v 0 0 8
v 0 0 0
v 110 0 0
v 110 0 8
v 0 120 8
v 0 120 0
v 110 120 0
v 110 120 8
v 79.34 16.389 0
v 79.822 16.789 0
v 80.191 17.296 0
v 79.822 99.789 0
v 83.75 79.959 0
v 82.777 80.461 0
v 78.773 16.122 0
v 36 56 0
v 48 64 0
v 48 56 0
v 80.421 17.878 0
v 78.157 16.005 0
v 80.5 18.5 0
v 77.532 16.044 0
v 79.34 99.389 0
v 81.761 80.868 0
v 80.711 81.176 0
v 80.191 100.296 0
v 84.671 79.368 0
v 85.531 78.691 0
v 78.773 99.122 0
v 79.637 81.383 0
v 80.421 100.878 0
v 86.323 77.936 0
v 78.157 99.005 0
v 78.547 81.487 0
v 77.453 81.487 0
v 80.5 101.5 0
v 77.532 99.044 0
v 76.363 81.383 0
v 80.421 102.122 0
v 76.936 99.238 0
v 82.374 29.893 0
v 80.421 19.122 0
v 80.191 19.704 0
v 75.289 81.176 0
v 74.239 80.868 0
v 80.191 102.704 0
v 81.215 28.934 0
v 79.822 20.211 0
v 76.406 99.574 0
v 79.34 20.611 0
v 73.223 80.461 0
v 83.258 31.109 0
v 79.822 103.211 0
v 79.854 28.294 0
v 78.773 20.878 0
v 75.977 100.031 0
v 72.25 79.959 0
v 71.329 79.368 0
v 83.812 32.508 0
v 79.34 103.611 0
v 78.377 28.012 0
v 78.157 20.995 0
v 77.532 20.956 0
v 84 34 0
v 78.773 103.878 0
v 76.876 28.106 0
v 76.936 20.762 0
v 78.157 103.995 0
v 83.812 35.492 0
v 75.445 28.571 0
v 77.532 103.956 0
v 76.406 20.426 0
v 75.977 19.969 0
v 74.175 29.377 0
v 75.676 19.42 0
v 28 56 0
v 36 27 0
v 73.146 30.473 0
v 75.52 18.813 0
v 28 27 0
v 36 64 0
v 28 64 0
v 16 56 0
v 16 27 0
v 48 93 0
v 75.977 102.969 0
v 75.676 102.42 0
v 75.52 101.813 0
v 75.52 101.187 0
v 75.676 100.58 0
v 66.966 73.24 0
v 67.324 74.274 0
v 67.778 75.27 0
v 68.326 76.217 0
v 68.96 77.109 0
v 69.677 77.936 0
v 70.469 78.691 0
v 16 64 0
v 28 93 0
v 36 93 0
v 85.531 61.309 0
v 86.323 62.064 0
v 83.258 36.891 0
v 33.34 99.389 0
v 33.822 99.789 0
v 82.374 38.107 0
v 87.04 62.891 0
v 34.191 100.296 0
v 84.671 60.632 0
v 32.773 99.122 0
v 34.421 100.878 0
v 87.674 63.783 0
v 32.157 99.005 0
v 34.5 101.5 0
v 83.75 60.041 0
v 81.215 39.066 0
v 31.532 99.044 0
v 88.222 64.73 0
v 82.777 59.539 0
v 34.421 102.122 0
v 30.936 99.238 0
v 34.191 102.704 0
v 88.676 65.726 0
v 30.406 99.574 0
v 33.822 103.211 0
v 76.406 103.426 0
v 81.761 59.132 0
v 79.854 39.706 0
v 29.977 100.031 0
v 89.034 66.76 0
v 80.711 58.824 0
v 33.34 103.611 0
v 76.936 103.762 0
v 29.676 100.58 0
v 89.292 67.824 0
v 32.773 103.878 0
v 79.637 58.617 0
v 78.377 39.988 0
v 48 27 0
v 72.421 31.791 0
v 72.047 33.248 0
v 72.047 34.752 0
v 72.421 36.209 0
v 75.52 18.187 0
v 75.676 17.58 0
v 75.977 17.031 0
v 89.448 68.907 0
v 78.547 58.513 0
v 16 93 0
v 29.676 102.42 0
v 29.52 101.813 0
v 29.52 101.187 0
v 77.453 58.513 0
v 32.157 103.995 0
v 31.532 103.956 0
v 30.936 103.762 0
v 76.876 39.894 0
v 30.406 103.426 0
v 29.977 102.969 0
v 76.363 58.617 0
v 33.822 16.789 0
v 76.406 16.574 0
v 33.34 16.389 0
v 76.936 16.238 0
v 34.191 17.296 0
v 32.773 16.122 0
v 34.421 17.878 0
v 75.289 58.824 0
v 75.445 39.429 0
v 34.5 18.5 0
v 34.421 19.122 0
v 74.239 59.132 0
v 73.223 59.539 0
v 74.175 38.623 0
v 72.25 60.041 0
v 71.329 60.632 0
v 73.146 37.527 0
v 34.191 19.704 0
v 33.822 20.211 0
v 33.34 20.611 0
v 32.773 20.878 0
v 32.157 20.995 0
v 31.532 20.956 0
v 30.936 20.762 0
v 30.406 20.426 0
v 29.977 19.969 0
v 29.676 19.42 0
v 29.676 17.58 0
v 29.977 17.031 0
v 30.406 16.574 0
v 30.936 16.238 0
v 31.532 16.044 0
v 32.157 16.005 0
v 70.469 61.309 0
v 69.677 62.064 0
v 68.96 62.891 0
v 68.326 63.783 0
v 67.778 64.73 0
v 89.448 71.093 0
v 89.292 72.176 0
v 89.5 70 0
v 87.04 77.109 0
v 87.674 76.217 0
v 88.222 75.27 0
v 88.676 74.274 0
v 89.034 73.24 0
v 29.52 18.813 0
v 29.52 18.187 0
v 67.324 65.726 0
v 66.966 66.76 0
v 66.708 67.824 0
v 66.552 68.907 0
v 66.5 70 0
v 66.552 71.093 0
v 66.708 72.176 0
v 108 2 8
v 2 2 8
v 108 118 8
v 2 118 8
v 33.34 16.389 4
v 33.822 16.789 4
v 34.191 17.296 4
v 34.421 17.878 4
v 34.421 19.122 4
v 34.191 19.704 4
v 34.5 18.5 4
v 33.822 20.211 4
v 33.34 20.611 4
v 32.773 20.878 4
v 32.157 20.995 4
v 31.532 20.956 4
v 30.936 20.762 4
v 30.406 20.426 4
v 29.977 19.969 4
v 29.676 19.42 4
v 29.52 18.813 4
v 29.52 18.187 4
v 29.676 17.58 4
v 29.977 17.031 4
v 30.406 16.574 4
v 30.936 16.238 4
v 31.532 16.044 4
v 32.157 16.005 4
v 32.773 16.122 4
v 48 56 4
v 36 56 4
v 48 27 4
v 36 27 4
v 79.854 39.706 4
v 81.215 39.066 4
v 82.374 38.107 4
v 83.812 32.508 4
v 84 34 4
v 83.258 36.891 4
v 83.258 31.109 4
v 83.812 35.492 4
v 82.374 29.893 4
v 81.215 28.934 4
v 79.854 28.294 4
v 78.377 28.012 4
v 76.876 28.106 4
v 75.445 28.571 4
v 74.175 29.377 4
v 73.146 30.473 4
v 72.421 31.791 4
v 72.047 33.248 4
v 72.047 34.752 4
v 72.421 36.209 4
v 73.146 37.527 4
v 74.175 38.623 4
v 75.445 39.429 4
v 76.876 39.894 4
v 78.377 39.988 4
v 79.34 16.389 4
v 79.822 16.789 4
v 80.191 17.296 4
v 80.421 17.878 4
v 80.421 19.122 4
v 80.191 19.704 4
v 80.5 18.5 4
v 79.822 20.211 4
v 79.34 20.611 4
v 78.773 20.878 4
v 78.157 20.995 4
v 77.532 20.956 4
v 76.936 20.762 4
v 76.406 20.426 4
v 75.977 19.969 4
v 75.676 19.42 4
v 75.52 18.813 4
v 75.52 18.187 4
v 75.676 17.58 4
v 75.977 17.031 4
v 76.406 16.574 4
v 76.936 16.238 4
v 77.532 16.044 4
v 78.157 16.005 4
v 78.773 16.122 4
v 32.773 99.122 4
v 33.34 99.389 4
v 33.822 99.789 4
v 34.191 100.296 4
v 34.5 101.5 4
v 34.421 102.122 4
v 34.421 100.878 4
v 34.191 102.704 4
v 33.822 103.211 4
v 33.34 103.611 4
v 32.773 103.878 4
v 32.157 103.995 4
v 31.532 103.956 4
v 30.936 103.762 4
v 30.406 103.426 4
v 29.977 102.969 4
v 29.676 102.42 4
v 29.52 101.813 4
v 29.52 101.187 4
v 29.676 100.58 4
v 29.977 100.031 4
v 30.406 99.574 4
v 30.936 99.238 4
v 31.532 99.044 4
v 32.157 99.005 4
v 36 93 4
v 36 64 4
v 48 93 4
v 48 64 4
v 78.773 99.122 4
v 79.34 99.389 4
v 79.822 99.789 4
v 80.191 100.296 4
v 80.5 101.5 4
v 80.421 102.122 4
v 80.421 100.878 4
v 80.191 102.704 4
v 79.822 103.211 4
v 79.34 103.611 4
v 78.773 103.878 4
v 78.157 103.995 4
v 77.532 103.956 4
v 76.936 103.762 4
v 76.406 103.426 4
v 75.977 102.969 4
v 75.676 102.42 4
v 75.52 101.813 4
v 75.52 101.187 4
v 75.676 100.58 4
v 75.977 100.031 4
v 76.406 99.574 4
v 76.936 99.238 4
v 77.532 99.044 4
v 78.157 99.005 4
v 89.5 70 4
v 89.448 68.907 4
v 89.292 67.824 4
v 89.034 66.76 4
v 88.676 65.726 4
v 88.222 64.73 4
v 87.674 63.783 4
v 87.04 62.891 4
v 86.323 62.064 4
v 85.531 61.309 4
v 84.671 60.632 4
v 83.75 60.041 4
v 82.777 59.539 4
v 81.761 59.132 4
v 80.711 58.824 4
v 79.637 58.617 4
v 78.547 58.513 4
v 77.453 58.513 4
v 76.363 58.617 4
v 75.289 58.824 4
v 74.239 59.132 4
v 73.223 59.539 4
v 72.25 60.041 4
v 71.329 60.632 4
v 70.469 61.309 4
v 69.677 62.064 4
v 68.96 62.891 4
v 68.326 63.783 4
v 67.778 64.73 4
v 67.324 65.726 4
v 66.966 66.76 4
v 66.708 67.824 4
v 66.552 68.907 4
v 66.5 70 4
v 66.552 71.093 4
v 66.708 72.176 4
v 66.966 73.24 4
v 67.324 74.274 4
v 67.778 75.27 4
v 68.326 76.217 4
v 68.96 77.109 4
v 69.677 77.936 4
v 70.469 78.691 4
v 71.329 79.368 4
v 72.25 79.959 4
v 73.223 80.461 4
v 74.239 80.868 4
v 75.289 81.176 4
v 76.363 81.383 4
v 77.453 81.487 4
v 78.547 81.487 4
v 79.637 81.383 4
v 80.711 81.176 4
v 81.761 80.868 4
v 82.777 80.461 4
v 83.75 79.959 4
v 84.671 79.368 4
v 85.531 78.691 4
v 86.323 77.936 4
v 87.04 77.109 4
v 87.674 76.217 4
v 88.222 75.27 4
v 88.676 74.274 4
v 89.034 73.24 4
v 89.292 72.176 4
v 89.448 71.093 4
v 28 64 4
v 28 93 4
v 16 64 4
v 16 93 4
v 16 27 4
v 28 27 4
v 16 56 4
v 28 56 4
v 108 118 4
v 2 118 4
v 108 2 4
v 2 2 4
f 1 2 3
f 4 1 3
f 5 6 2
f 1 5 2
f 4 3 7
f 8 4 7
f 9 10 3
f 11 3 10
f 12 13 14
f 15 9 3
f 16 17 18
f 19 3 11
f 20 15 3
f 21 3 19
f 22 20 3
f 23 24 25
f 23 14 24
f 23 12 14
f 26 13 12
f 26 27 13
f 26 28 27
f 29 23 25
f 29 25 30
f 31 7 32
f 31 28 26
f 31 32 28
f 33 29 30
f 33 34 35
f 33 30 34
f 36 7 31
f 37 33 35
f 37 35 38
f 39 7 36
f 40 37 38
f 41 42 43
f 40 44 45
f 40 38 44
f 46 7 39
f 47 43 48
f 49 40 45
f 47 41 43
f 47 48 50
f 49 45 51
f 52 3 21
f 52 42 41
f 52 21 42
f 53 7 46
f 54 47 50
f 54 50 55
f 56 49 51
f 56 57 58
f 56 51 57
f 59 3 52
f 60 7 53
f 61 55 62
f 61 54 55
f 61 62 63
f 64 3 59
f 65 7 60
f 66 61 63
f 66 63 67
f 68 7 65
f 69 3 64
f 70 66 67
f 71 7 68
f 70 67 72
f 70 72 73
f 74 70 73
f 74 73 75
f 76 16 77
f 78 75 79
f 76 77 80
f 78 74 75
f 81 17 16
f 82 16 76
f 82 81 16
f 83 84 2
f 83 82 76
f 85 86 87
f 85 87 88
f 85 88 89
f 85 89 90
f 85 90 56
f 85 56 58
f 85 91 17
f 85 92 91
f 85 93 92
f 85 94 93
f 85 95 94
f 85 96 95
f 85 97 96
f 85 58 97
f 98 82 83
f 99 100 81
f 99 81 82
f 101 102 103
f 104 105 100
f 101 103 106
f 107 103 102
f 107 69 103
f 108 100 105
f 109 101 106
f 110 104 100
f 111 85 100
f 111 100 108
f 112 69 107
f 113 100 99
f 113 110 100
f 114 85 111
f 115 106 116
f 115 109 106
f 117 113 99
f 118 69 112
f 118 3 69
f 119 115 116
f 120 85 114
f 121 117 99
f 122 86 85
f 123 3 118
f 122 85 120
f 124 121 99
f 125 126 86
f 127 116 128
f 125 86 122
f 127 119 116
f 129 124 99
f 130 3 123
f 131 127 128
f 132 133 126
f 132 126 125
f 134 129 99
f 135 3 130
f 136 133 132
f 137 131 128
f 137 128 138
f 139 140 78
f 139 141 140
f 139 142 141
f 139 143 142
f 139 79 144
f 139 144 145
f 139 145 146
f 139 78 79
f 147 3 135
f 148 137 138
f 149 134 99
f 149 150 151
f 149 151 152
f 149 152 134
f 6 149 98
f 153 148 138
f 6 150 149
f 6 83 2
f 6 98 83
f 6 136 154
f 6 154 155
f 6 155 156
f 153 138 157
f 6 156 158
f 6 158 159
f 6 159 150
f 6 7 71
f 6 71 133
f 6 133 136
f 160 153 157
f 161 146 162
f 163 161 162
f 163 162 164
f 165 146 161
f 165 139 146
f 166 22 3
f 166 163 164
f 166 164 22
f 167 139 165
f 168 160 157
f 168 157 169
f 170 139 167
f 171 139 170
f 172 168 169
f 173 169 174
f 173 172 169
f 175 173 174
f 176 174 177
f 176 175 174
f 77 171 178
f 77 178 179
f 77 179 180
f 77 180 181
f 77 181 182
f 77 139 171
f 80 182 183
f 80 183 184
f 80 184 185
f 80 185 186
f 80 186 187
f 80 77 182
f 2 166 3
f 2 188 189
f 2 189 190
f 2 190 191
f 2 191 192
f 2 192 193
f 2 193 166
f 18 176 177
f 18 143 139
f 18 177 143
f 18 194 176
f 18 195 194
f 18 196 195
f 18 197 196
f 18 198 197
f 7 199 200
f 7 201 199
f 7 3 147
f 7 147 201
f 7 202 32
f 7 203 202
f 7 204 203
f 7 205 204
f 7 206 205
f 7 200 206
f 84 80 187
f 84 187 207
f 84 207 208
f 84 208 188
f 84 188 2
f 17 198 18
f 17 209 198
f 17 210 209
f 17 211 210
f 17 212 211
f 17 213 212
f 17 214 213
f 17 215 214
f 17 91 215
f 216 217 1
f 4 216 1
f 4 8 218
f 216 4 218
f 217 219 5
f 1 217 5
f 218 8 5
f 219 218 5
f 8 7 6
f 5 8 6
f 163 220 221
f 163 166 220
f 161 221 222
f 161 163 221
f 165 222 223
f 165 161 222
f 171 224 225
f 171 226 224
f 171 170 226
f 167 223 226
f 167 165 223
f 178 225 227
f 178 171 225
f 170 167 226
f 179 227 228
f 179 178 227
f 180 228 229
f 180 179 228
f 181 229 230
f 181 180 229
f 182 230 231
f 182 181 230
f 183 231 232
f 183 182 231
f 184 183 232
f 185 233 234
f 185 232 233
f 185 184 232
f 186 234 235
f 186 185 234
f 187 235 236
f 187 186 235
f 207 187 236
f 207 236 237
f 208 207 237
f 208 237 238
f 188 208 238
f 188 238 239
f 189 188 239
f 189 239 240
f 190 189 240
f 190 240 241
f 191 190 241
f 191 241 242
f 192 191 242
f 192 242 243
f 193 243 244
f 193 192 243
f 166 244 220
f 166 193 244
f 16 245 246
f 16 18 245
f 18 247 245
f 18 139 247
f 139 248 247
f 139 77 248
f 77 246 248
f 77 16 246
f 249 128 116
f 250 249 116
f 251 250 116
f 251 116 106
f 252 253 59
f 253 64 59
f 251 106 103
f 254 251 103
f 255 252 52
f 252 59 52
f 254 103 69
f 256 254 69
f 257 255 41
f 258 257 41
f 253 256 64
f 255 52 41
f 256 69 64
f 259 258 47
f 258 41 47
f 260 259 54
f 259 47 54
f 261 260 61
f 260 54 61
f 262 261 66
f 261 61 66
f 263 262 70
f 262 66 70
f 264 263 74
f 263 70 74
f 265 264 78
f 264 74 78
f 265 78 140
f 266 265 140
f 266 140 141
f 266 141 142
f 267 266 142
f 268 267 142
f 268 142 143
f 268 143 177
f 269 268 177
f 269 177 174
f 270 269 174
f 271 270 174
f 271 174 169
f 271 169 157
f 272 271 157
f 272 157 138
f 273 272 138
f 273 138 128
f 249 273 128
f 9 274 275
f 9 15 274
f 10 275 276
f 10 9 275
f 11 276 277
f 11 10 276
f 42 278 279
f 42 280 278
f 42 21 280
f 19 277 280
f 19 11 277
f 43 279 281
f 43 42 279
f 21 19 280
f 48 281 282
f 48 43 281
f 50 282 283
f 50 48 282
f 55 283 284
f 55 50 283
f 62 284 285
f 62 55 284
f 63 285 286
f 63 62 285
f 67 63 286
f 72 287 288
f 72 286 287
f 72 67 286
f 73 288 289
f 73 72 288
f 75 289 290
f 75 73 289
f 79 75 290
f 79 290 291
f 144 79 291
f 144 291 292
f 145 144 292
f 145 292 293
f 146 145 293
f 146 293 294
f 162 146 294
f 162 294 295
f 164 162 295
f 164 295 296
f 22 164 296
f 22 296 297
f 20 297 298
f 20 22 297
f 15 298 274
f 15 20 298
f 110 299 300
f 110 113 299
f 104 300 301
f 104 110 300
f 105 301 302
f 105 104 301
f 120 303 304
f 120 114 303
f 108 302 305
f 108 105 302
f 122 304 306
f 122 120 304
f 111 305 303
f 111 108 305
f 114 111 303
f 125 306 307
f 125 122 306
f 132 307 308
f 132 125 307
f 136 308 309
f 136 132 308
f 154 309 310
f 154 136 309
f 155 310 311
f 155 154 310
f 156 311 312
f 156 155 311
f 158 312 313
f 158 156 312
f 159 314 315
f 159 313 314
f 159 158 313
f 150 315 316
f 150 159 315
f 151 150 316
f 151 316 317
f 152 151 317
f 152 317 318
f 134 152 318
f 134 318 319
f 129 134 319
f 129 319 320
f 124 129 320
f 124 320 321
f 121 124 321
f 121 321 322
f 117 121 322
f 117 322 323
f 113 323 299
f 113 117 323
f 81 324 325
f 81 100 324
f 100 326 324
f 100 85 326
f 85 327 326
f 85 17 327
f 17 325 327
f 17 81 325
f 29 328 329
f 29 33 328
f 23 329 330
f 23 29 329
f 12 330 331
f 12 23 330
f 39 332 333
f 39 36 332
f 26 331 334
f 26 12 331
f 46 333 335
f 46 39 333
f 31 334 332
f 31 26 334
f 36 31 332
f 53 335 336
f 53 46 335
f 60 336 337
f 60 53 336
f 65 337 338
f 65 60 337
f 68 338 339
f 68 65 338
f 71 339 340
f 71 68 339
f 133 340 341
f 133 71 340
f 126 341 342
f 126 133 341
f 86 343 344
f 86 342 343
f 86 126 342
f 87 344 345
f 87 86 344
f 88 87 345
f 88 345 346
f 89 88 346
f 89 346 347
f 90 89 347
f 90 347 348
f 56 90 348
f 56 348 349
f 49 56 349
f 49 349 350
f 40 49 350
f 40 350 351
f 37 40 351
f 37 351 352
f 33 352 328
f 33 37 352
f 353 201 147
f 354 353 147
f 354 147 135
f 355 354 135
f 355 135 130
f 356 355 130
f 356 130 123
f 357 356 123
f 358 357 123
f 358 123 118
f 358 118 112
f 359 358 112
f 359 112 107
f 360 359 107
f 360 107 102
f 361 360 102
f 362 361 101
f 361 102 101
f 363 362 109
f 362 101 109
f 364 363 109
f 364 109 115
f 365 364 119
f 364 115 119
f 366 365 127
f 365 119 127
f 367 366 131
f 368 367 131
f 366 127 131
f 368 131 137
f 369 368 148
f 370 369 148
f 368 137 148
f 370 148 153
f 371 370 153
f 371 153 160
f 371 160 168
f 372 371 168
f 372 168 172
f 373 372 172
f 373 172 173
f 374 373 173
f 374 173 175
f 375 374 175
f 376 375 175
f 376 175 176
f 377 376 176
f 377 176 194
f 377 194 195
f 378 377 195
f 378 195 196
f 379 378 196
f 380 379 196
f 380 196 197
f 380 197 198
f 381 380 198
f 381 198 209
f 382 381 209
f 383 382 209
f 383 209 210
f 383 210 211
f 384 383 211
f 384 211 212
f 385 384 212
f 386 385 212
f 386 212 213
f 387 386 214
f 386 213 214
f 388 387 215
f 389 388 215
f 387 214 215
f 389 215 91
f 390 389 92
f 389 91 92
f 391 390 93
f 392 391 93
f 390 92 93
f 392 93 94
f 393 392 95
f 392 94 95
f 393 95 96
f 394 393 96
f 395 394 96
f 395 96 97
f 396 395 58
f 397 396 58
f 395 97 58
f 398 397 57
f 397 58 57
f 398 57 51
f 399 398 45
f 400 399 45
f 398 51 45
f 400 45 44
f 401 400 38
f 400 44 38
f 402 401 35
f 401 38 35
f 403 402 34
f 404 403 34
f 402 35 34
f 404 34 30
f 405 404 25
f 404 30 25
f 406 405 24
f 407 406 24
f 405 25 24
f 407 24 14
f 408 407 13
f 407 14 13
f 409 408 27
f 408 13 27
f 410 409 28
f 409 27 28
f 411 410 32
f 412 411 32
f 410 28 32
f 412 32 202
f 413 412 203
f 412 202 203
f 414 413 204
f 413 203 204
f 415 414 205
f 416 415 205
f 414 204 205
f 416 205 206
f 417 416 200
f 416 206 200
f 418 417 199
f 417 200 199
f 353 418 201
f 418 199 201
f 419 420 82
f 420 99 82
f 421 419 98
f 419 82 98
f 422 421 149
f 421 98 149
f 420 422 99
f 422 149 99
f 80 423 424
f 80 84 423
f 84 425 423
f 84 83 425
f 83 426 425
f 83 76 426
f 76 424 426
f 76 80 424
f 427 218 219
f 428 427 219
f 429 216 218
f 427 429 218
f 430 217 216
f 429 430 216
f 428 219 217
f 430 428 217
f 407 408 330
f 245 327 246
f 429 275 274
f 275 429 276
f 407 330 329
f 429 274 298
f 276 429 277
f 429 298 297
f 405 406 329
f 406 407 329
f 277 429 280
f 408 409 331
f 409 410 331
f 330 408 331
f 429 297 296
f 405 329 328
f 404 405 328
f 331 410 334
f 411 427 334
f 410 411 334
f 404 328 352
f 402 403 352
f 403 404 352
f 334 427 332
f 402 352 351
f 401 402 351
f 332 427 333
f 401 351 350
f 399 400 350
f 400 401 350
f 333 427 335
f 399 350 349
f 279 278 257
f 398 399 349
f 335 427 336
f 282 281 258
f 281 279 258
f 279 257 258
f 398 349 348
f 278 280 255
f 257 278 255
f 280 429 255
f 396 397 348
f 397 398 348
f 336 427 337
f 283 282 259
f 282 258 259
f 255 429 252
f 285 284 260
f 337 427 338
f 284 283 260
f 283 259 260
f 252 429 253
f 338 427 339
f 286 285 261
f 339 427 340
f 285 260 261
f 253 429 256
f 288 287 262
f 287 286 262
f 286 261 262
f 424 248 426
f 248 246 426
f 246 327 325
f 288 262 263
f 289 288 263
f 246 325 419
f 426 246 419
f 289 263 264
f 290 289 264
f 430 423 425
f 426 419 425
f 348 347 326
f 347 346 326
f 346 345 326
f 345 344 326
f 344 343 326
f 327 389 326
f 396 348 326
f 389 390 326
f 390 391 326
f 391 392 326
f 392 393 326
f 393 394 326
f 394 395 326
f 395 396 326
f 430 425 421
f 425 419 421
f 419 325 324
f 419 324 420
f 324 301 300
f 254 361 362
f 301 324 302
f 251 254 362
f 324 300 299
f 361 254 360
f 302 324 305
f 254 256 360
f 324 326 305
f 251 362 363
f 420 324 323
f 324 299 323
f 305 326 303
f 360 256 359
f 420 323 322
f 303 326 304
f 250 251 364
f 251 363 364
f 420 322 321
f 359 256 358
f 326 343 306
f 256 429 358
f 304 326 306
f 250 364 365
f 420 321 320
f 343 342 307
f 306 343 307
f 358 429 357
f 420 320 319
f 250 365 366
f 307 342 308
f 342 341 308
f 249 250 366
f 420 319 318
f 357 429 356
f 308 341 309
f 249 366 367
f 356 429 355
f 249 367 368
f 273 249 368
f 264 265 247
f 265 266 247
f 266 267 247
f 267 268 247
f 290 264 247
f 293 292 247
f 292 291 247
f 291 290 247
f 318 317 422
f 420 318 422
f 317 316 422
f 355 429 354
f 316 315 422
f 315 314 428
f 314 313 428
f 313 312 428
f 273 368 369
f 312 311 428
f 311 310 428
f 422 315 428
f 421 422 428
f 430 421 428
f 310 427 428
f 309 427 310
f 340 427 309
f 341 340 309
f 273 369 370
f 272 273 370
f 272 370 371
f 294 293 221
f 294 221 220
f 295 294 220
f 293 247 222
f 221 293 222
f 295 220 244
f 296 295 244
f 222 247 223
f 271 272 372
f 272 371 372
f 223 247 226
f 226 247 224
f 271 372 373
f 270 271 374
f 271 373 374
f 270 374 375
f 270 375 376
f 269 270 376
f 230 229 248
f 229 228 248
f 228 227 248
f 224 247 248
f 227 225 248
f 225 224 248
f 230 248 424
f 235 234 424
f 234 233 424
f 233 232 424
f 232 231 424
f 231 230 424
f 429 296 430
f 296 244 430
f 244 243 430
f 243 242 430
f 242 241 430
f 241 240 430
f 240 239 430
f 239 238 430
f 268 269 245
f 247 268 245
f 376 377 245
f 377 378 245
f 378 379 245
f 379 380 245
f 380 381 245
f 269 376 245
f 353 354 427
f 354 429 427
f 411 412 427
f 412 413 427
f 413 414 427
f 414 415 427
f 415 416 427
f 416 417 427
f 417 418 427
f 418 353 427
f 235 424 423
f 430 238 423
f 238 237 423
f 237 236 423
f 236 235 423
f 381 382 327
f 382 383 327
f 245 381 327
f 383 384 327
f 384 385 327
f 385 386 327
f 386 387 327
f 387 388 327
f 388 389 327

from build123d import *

# Parameters (mm, degrees)
SKETCH_W        = 110
SKETCH_H        = 120
SKETCH_R        = 2.5
PAD_DEPTH       = 8
SKETCH001_W     = 106
SKETCH001_H     = 116
POCKET_DEPTH    = 4
SKETCH002_R     = 11.5
SKETCH002_R_2   = 6
SKETCH002_W     = 12
SKETCH002_H     = 29
POCKET001_DEPTH = 8.001


with BuildPart() as part:
    # Sketch → Pad (new body)
    with BuildSketch(Plane.XY):
        with Locations((55, 60)):
            Rectangle(SKETCH_W, SKETCH_H)
        with Locations((32, 101.5)):
            Circle(SKETCH_R, mode=Mode.SUBTRACT)
        with Locations((78, 101.5)):
            Circle(SKETCH_R, mode=Mode.SUBTRACT)
        with Locations((32, 18.5)):
            Circle(SKETCH_R, mode=Mode.SUBTRACT)
        with Locations((78, 18.5)):
            Circle(SKETCH_R, mode=Mode.SUBTRACT)
    extrude(amount=PAD_DEPTH)

    # Sketch001 → Pocket (cut)
    with BuildSketch(Plane.XY.offset(8)):
        with Locations((55, 60)):
            Rectangle(SKETCH001_W, SKETCH001_H)
    extrude(amount=-POCKET_DEPTH, mode=Mode.SUBTRACT)

    # Sketch002 → Pocket001 (cut, through all)
    with BuildSketch(Plane(origin=(0, 0, 0), x_dir=(1, 0, 0), z_dir=(0, 0, -1))):
        with Locations((78, -70)):
            Circle(SKETCH002_R)
        with Locations((78, -34)):
            Circle(SKETCH002_R_2)
        with Locations((22, -41.5)):
            Rectangle(SKETCH002_W, SKETCH002_H)
        with Locations((42, -41.5)):
            Rectangle(SKETCH002_W, SKETCH002_H)
        with Locations((22, -78.5)):
            Rectangle(SKETCH002_W, SKETCH002_H)
        with Locations((42, -78.5)):
            Rectangle(SKETCH002_W, SKETCH002_H)
    extrude(amount=-POCKET001_DEPTH, mode=Mode.SUBTRACT)


solid = part.part
